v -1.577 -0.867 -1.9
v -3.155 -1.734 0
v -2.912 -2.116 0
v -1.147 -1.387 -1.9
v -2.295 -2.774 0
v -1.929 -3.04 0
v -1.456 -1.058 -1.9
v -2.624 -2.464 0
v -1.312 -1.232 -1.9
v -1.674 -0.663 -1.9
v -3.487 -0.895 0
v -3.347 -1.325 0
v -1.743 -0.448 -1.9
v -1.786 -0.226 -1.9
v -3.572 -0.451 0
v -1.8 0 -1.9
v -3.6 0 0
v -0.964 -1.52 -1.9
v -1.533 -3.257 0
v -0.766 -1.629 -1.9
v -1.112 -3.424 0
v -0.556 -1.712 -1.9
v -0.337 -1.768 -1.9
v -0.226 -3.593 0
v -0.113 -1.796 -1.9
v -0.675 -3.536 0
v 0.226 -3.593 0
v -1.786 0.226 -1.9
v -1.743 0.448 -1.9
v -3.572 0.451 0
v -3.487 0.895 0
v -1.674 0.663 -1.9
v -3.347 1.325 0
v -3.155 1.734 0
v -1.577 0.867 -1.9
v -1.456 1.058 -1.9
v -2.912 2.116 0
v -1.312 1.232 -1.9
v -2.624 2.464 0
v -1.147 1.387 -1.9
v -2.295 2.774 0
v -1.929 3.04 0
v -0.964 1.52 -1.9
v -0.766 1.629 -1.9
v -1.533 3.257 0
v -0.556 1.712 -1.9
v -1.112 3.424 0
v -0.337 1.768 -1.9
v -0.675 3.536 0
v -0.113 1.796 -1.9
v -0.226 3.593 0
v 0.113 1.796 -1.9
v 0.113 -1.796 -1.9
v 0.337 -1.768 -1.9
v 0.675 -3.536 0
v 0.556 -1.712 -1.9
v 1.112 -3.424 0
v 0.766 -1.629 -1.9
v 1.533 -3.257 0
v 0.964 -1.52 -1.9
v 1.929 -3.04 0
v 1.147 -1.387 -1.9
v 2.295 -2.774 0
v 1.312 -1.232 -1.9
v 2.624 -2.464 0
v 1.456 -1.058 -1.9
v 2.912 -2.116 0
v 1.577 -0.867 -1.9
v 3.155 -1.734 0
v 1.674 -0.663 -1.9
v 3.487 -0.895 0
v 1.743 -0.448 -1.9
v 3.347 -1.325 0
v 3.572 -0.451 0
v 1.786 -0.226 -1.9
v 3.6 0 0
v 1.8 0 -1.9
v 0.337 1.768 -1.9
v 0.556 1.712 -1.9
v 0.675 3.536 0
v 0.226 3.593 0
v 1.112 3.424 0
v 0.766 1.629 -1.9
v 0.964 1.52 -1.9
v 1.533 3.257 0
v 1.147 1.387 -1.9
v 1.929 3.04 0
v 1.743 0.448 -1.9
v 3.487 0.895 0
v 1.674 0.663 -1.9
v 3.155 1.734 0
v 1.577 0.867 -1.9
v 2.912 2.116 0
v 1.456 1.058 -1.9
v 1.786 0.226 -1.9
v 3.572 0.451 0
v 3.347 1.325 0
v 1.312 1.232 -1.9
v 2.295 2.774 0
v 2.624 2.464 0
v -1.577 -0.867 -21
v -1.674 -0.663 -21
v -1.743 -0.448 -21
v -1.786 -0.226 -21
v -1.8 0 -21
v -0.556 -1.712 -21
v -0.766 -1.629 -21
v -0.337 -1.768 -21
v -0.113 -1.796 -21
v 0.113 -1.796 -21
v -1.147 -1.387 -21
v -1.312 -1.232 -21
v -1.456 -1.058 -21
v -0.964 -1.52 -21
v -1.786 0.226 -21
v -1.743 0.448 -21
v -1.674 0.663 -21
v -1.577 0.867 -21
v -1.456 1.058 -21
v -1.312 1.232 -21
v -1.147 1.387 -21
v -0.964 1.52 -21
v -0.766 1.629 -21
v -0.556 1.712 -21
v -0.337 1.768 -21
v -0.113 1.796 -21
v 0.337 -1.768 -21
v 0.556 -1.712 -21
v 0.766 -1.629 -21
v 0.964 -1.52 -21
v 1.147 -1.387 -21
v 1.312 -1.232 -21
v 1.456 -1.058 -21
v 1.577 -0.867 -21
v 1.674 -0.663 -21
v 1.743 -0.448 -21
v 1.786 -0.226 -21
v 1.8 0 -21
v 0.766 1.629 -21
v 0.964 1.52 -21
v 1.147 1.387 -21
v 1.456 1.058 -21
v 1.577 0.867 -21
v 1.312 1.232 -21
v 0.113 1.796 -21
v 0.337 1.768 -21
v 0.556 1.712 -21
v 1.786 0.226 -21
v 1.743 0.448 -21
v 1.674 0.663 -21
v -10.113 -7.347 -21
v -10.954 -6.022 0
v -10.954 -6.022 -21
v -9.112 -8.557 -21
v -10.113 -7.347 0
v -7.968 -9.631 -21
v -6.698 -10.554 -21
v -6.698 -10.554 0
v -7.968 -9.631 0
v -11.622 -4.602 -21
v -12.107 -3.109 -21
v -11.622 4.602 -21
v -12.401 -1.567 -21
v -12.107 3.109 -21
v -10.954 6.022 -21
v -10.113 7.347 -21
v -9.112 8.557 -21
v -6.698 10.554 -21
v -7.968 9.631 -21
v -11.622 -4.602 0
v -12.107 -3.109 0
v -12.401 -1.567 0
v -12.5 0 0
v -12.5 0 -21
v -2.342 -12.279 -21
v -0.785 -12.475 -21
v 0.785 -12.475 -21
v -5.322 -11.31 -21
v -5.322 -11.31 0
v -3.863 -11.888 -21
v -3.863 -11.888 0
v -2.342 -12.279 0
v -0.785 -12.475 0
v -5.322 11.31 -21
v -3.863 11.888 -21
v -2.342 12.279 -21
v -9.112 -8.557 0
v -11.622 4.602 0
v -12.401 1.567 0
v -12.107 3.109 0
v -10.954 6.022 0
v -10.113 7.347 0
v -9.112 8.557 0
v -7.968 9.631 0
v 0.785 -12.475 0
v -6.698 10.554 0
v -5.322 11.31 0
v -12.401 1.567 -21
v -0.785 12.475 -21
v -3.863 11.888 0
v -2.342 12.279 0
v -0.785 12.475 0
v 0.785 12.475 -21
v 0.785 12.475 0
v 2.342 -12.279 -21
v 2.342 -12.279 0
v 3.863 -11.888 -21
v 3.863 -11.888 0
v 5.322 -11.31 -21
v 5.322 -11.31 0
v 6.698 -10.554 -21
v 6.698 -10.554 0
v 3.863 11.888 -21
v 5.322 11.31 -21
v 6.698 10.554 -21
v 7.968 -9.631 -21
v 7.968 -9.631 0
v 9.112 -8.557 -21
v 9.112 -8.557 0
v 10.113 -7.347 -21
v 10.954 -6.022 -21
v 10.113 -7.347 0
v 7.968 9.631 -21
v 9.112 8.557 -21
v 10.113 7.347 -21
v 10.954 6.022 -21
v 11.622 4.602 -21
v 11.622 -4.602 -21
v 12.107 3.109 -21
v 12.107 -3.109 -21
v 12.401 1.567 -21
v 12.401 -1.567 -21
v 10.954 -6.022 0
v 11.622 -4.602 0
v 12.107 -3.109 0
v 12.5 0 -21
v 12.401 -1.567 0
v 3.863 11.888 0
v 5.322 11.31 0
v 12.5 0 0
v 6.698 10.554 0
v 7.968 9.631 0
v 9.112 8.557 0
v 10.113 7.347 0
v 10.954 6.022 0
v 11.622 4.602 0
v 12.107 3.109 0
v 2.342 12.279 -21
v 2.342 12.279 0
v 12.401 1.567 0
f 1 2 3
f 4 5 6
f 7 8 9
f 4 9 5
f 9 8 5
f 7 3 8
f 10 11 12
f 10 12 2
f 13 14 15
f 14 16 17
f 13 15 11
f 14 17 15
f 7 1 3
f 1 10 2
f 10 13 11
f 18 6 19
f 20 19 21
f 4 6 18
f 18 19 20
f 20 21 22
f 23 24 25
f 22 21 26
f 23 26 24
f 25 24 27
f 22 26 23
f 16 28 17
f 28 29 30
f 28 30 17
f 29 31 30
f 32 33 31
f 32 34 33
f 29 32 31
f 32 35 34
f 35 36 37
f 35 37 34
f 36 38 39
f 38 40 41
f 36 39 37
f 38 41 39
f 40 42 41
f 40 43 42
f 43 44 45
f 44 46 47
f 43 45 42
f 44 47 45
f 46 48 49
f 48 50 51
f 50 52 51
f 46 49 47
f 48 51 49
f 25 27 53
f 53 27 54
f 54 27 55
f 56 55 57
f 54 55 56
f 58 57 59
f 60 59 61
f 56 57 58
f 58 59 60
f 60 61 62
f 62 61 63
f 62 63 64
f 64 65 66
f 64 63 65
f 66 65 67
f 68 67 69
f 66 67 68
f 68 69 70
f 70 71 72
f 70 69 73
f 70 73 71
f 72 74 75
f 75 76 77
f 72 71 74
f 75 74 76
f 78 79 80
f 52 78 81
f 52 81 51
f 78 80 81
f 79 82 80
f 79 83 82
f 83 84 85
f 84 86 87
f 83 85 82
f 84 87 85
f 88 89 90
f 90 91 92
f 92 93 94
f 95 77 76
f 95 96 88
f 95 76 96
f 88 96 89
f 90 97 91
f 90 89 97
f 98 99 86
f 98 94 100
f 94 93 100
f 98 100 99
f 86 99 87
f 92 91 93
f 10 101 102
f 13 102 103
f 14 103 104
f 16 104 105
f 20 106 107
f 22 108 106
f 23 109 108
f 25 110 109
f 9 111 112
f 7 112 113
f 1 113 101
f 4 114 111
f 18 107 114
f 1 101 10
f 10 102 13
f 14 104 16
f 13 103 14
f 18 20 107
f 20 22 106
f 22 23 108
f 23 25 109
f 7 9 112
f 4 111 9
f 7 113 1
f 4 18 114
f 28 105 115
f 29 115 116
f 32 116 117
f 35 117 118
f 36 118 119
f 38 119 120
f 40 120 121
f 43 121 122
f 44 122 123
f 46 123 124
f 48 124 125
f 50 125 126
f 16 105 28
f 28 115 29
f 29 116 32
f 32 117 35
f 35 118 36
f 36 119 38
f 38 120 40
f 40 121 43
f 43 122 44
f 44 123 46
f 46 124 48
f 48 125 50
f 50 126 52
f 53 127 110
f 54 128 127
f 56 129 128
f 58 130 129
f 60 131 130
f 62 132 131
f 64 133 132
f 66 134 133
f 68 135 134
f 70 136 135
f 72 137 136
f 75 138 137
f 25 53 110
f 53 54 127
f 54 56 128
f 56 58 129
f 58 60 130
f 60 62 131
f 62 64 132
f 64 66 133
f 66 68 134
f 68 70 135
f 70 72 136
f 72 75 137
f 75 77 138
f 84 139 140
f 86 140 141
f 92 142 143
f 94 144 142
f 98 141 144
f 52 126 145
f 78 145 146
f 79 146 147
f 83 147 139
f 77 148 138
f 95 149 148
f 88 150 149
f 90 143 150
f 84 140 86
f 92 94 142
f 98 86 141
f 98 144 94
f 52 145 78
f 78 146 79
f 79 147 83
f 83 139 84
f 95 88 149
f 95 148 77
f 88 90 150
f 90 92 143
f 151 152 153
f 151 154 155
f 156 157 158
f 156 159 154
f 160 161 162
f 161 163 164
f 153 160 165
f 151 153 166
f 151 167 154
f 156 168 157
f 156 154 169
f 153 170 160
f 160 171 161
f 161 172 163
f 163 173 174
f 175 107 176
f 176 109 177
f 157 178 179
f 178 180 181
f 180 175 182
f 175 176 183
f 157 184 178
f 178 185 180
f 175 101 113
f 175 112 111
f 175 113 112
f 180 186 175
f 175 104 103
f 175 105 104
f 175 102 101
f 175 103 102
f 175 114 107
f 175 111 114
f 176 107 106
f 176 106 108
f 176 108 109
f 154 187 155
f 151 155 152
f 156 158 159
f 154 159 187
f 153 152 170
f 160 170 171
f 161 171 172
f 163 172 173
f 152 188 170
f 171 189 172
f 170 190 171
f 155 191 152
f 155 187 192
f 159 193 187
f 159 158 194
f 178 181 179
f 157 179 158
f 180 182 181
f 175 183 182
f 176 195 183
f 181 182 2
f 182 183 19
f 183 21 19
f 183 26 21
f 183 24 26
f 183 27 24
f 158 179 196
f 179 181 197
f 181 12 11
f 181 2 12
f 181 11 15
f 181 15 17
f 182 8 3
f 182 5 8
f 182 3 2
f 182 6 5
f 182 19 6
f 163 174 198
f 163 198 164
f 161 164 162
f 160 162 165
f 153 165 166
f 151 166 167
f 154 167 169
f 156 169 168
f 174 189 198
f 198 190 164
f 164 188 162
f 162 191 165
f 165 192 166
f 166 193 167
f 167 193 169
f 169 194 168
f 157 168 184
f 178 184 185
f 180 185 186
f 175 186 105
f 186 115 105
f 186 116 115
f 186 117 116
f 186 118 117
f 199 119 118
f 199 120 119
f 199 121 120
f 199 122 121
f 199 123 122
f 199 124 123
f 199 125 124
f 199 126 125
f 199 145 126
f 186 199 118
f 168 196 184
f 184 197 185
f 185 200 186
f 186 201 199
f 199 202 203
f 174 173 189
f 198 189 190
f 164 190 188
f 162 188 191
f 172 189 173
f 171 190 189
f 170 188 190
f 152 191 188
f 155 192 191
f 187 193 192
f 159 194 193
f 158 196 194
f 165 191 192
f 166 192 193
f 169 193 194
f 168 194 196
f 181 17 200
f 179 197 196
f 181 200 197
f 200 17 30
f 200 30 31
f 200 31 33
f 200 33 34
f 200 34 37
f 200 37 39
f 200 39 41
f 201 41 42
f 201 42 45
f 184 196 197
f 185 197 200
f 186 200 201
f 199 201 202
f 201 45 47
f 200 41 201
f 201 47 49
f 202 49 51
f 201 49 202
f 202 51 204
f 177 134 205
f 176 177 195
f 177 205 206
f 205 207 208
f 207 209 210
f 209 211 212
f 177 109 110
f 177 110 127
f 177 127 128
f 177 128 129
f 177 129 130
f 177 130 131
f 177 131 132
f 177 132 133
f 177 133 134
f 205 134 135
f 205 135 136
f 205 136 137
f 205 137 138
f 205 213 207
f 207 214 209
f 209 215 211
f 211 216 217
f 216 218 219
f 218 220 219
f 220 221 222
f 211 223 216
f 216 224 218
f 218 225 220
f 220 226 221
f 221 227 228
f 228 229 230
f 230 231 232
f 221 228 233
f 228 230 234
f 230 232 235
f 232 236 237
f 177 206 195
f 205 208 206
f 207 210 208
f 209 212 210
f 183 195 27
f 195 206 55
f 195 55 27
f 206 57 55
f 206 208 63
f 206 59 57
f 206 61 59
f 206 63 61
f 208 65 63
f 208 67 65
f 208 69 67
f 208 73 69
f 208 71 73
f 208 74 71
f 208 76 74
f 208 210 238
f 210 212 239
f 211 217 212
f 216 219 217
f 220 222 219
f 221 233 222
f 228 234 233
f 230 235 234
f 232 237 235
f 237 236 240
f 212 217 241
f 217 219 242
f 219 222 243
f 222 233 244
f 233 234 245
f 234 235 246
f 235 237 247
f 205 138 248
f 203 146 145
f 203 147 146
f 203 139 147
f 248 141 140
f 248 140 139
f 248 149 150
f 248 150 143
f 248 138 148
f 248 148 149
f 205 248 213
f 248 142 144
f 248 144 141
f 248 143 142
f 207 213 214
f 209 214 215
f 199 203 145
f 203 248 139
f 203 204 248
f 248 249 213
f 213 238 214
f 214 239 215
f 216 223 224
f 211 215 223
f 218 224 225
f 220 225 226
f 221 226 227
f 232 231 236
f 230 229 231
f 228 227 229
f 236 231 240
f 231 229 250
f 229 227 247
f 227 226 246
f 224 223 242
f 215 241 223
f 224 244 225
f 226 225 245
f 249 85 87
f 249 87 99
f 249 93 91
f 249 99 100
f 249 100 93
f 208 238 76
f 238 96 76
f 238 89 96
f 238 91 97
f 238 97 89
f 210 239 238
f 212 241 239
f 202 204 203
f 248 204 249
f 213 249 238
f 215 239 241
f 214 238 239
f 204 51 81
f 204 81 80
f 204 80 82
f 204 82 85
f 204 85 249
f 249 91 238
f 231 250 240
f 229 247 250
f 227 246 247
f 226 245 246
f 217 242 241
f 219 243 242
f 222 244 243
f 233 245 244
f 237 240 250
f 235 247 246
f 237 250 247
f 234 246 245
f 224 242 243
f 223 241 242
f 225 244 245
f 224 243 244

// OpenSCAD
$fn = 50;

difference() {
	union() {
		translate(v = [0, 0, -21.0]) {
			cylinder(h = 21, r = 12.5);
		}
	}
	union() {
		translate(v = [0, 0, 0]) {
			rotate(a = [0, 0, 0]) {
				difference() {
					union() {
						translate(v = [0, 0, -24.0]) {
							cylinder(h = 24, r = 1.5);
						}
						translate(v = [0, 0, -1.9]) {
							cylinder(h = 1.9, r1 = 1.8, r2 = 3.6);
						}
						translate(v = [0, 0, -24.0]) {
							cylinder(h = 24, r = 1.8);
						}
						translate(v = [0, 0, -24.0]) {
							cylinder(h = 24, r = 1.5);
						}
					}
					union();
				}
			}
		}
	}
}
